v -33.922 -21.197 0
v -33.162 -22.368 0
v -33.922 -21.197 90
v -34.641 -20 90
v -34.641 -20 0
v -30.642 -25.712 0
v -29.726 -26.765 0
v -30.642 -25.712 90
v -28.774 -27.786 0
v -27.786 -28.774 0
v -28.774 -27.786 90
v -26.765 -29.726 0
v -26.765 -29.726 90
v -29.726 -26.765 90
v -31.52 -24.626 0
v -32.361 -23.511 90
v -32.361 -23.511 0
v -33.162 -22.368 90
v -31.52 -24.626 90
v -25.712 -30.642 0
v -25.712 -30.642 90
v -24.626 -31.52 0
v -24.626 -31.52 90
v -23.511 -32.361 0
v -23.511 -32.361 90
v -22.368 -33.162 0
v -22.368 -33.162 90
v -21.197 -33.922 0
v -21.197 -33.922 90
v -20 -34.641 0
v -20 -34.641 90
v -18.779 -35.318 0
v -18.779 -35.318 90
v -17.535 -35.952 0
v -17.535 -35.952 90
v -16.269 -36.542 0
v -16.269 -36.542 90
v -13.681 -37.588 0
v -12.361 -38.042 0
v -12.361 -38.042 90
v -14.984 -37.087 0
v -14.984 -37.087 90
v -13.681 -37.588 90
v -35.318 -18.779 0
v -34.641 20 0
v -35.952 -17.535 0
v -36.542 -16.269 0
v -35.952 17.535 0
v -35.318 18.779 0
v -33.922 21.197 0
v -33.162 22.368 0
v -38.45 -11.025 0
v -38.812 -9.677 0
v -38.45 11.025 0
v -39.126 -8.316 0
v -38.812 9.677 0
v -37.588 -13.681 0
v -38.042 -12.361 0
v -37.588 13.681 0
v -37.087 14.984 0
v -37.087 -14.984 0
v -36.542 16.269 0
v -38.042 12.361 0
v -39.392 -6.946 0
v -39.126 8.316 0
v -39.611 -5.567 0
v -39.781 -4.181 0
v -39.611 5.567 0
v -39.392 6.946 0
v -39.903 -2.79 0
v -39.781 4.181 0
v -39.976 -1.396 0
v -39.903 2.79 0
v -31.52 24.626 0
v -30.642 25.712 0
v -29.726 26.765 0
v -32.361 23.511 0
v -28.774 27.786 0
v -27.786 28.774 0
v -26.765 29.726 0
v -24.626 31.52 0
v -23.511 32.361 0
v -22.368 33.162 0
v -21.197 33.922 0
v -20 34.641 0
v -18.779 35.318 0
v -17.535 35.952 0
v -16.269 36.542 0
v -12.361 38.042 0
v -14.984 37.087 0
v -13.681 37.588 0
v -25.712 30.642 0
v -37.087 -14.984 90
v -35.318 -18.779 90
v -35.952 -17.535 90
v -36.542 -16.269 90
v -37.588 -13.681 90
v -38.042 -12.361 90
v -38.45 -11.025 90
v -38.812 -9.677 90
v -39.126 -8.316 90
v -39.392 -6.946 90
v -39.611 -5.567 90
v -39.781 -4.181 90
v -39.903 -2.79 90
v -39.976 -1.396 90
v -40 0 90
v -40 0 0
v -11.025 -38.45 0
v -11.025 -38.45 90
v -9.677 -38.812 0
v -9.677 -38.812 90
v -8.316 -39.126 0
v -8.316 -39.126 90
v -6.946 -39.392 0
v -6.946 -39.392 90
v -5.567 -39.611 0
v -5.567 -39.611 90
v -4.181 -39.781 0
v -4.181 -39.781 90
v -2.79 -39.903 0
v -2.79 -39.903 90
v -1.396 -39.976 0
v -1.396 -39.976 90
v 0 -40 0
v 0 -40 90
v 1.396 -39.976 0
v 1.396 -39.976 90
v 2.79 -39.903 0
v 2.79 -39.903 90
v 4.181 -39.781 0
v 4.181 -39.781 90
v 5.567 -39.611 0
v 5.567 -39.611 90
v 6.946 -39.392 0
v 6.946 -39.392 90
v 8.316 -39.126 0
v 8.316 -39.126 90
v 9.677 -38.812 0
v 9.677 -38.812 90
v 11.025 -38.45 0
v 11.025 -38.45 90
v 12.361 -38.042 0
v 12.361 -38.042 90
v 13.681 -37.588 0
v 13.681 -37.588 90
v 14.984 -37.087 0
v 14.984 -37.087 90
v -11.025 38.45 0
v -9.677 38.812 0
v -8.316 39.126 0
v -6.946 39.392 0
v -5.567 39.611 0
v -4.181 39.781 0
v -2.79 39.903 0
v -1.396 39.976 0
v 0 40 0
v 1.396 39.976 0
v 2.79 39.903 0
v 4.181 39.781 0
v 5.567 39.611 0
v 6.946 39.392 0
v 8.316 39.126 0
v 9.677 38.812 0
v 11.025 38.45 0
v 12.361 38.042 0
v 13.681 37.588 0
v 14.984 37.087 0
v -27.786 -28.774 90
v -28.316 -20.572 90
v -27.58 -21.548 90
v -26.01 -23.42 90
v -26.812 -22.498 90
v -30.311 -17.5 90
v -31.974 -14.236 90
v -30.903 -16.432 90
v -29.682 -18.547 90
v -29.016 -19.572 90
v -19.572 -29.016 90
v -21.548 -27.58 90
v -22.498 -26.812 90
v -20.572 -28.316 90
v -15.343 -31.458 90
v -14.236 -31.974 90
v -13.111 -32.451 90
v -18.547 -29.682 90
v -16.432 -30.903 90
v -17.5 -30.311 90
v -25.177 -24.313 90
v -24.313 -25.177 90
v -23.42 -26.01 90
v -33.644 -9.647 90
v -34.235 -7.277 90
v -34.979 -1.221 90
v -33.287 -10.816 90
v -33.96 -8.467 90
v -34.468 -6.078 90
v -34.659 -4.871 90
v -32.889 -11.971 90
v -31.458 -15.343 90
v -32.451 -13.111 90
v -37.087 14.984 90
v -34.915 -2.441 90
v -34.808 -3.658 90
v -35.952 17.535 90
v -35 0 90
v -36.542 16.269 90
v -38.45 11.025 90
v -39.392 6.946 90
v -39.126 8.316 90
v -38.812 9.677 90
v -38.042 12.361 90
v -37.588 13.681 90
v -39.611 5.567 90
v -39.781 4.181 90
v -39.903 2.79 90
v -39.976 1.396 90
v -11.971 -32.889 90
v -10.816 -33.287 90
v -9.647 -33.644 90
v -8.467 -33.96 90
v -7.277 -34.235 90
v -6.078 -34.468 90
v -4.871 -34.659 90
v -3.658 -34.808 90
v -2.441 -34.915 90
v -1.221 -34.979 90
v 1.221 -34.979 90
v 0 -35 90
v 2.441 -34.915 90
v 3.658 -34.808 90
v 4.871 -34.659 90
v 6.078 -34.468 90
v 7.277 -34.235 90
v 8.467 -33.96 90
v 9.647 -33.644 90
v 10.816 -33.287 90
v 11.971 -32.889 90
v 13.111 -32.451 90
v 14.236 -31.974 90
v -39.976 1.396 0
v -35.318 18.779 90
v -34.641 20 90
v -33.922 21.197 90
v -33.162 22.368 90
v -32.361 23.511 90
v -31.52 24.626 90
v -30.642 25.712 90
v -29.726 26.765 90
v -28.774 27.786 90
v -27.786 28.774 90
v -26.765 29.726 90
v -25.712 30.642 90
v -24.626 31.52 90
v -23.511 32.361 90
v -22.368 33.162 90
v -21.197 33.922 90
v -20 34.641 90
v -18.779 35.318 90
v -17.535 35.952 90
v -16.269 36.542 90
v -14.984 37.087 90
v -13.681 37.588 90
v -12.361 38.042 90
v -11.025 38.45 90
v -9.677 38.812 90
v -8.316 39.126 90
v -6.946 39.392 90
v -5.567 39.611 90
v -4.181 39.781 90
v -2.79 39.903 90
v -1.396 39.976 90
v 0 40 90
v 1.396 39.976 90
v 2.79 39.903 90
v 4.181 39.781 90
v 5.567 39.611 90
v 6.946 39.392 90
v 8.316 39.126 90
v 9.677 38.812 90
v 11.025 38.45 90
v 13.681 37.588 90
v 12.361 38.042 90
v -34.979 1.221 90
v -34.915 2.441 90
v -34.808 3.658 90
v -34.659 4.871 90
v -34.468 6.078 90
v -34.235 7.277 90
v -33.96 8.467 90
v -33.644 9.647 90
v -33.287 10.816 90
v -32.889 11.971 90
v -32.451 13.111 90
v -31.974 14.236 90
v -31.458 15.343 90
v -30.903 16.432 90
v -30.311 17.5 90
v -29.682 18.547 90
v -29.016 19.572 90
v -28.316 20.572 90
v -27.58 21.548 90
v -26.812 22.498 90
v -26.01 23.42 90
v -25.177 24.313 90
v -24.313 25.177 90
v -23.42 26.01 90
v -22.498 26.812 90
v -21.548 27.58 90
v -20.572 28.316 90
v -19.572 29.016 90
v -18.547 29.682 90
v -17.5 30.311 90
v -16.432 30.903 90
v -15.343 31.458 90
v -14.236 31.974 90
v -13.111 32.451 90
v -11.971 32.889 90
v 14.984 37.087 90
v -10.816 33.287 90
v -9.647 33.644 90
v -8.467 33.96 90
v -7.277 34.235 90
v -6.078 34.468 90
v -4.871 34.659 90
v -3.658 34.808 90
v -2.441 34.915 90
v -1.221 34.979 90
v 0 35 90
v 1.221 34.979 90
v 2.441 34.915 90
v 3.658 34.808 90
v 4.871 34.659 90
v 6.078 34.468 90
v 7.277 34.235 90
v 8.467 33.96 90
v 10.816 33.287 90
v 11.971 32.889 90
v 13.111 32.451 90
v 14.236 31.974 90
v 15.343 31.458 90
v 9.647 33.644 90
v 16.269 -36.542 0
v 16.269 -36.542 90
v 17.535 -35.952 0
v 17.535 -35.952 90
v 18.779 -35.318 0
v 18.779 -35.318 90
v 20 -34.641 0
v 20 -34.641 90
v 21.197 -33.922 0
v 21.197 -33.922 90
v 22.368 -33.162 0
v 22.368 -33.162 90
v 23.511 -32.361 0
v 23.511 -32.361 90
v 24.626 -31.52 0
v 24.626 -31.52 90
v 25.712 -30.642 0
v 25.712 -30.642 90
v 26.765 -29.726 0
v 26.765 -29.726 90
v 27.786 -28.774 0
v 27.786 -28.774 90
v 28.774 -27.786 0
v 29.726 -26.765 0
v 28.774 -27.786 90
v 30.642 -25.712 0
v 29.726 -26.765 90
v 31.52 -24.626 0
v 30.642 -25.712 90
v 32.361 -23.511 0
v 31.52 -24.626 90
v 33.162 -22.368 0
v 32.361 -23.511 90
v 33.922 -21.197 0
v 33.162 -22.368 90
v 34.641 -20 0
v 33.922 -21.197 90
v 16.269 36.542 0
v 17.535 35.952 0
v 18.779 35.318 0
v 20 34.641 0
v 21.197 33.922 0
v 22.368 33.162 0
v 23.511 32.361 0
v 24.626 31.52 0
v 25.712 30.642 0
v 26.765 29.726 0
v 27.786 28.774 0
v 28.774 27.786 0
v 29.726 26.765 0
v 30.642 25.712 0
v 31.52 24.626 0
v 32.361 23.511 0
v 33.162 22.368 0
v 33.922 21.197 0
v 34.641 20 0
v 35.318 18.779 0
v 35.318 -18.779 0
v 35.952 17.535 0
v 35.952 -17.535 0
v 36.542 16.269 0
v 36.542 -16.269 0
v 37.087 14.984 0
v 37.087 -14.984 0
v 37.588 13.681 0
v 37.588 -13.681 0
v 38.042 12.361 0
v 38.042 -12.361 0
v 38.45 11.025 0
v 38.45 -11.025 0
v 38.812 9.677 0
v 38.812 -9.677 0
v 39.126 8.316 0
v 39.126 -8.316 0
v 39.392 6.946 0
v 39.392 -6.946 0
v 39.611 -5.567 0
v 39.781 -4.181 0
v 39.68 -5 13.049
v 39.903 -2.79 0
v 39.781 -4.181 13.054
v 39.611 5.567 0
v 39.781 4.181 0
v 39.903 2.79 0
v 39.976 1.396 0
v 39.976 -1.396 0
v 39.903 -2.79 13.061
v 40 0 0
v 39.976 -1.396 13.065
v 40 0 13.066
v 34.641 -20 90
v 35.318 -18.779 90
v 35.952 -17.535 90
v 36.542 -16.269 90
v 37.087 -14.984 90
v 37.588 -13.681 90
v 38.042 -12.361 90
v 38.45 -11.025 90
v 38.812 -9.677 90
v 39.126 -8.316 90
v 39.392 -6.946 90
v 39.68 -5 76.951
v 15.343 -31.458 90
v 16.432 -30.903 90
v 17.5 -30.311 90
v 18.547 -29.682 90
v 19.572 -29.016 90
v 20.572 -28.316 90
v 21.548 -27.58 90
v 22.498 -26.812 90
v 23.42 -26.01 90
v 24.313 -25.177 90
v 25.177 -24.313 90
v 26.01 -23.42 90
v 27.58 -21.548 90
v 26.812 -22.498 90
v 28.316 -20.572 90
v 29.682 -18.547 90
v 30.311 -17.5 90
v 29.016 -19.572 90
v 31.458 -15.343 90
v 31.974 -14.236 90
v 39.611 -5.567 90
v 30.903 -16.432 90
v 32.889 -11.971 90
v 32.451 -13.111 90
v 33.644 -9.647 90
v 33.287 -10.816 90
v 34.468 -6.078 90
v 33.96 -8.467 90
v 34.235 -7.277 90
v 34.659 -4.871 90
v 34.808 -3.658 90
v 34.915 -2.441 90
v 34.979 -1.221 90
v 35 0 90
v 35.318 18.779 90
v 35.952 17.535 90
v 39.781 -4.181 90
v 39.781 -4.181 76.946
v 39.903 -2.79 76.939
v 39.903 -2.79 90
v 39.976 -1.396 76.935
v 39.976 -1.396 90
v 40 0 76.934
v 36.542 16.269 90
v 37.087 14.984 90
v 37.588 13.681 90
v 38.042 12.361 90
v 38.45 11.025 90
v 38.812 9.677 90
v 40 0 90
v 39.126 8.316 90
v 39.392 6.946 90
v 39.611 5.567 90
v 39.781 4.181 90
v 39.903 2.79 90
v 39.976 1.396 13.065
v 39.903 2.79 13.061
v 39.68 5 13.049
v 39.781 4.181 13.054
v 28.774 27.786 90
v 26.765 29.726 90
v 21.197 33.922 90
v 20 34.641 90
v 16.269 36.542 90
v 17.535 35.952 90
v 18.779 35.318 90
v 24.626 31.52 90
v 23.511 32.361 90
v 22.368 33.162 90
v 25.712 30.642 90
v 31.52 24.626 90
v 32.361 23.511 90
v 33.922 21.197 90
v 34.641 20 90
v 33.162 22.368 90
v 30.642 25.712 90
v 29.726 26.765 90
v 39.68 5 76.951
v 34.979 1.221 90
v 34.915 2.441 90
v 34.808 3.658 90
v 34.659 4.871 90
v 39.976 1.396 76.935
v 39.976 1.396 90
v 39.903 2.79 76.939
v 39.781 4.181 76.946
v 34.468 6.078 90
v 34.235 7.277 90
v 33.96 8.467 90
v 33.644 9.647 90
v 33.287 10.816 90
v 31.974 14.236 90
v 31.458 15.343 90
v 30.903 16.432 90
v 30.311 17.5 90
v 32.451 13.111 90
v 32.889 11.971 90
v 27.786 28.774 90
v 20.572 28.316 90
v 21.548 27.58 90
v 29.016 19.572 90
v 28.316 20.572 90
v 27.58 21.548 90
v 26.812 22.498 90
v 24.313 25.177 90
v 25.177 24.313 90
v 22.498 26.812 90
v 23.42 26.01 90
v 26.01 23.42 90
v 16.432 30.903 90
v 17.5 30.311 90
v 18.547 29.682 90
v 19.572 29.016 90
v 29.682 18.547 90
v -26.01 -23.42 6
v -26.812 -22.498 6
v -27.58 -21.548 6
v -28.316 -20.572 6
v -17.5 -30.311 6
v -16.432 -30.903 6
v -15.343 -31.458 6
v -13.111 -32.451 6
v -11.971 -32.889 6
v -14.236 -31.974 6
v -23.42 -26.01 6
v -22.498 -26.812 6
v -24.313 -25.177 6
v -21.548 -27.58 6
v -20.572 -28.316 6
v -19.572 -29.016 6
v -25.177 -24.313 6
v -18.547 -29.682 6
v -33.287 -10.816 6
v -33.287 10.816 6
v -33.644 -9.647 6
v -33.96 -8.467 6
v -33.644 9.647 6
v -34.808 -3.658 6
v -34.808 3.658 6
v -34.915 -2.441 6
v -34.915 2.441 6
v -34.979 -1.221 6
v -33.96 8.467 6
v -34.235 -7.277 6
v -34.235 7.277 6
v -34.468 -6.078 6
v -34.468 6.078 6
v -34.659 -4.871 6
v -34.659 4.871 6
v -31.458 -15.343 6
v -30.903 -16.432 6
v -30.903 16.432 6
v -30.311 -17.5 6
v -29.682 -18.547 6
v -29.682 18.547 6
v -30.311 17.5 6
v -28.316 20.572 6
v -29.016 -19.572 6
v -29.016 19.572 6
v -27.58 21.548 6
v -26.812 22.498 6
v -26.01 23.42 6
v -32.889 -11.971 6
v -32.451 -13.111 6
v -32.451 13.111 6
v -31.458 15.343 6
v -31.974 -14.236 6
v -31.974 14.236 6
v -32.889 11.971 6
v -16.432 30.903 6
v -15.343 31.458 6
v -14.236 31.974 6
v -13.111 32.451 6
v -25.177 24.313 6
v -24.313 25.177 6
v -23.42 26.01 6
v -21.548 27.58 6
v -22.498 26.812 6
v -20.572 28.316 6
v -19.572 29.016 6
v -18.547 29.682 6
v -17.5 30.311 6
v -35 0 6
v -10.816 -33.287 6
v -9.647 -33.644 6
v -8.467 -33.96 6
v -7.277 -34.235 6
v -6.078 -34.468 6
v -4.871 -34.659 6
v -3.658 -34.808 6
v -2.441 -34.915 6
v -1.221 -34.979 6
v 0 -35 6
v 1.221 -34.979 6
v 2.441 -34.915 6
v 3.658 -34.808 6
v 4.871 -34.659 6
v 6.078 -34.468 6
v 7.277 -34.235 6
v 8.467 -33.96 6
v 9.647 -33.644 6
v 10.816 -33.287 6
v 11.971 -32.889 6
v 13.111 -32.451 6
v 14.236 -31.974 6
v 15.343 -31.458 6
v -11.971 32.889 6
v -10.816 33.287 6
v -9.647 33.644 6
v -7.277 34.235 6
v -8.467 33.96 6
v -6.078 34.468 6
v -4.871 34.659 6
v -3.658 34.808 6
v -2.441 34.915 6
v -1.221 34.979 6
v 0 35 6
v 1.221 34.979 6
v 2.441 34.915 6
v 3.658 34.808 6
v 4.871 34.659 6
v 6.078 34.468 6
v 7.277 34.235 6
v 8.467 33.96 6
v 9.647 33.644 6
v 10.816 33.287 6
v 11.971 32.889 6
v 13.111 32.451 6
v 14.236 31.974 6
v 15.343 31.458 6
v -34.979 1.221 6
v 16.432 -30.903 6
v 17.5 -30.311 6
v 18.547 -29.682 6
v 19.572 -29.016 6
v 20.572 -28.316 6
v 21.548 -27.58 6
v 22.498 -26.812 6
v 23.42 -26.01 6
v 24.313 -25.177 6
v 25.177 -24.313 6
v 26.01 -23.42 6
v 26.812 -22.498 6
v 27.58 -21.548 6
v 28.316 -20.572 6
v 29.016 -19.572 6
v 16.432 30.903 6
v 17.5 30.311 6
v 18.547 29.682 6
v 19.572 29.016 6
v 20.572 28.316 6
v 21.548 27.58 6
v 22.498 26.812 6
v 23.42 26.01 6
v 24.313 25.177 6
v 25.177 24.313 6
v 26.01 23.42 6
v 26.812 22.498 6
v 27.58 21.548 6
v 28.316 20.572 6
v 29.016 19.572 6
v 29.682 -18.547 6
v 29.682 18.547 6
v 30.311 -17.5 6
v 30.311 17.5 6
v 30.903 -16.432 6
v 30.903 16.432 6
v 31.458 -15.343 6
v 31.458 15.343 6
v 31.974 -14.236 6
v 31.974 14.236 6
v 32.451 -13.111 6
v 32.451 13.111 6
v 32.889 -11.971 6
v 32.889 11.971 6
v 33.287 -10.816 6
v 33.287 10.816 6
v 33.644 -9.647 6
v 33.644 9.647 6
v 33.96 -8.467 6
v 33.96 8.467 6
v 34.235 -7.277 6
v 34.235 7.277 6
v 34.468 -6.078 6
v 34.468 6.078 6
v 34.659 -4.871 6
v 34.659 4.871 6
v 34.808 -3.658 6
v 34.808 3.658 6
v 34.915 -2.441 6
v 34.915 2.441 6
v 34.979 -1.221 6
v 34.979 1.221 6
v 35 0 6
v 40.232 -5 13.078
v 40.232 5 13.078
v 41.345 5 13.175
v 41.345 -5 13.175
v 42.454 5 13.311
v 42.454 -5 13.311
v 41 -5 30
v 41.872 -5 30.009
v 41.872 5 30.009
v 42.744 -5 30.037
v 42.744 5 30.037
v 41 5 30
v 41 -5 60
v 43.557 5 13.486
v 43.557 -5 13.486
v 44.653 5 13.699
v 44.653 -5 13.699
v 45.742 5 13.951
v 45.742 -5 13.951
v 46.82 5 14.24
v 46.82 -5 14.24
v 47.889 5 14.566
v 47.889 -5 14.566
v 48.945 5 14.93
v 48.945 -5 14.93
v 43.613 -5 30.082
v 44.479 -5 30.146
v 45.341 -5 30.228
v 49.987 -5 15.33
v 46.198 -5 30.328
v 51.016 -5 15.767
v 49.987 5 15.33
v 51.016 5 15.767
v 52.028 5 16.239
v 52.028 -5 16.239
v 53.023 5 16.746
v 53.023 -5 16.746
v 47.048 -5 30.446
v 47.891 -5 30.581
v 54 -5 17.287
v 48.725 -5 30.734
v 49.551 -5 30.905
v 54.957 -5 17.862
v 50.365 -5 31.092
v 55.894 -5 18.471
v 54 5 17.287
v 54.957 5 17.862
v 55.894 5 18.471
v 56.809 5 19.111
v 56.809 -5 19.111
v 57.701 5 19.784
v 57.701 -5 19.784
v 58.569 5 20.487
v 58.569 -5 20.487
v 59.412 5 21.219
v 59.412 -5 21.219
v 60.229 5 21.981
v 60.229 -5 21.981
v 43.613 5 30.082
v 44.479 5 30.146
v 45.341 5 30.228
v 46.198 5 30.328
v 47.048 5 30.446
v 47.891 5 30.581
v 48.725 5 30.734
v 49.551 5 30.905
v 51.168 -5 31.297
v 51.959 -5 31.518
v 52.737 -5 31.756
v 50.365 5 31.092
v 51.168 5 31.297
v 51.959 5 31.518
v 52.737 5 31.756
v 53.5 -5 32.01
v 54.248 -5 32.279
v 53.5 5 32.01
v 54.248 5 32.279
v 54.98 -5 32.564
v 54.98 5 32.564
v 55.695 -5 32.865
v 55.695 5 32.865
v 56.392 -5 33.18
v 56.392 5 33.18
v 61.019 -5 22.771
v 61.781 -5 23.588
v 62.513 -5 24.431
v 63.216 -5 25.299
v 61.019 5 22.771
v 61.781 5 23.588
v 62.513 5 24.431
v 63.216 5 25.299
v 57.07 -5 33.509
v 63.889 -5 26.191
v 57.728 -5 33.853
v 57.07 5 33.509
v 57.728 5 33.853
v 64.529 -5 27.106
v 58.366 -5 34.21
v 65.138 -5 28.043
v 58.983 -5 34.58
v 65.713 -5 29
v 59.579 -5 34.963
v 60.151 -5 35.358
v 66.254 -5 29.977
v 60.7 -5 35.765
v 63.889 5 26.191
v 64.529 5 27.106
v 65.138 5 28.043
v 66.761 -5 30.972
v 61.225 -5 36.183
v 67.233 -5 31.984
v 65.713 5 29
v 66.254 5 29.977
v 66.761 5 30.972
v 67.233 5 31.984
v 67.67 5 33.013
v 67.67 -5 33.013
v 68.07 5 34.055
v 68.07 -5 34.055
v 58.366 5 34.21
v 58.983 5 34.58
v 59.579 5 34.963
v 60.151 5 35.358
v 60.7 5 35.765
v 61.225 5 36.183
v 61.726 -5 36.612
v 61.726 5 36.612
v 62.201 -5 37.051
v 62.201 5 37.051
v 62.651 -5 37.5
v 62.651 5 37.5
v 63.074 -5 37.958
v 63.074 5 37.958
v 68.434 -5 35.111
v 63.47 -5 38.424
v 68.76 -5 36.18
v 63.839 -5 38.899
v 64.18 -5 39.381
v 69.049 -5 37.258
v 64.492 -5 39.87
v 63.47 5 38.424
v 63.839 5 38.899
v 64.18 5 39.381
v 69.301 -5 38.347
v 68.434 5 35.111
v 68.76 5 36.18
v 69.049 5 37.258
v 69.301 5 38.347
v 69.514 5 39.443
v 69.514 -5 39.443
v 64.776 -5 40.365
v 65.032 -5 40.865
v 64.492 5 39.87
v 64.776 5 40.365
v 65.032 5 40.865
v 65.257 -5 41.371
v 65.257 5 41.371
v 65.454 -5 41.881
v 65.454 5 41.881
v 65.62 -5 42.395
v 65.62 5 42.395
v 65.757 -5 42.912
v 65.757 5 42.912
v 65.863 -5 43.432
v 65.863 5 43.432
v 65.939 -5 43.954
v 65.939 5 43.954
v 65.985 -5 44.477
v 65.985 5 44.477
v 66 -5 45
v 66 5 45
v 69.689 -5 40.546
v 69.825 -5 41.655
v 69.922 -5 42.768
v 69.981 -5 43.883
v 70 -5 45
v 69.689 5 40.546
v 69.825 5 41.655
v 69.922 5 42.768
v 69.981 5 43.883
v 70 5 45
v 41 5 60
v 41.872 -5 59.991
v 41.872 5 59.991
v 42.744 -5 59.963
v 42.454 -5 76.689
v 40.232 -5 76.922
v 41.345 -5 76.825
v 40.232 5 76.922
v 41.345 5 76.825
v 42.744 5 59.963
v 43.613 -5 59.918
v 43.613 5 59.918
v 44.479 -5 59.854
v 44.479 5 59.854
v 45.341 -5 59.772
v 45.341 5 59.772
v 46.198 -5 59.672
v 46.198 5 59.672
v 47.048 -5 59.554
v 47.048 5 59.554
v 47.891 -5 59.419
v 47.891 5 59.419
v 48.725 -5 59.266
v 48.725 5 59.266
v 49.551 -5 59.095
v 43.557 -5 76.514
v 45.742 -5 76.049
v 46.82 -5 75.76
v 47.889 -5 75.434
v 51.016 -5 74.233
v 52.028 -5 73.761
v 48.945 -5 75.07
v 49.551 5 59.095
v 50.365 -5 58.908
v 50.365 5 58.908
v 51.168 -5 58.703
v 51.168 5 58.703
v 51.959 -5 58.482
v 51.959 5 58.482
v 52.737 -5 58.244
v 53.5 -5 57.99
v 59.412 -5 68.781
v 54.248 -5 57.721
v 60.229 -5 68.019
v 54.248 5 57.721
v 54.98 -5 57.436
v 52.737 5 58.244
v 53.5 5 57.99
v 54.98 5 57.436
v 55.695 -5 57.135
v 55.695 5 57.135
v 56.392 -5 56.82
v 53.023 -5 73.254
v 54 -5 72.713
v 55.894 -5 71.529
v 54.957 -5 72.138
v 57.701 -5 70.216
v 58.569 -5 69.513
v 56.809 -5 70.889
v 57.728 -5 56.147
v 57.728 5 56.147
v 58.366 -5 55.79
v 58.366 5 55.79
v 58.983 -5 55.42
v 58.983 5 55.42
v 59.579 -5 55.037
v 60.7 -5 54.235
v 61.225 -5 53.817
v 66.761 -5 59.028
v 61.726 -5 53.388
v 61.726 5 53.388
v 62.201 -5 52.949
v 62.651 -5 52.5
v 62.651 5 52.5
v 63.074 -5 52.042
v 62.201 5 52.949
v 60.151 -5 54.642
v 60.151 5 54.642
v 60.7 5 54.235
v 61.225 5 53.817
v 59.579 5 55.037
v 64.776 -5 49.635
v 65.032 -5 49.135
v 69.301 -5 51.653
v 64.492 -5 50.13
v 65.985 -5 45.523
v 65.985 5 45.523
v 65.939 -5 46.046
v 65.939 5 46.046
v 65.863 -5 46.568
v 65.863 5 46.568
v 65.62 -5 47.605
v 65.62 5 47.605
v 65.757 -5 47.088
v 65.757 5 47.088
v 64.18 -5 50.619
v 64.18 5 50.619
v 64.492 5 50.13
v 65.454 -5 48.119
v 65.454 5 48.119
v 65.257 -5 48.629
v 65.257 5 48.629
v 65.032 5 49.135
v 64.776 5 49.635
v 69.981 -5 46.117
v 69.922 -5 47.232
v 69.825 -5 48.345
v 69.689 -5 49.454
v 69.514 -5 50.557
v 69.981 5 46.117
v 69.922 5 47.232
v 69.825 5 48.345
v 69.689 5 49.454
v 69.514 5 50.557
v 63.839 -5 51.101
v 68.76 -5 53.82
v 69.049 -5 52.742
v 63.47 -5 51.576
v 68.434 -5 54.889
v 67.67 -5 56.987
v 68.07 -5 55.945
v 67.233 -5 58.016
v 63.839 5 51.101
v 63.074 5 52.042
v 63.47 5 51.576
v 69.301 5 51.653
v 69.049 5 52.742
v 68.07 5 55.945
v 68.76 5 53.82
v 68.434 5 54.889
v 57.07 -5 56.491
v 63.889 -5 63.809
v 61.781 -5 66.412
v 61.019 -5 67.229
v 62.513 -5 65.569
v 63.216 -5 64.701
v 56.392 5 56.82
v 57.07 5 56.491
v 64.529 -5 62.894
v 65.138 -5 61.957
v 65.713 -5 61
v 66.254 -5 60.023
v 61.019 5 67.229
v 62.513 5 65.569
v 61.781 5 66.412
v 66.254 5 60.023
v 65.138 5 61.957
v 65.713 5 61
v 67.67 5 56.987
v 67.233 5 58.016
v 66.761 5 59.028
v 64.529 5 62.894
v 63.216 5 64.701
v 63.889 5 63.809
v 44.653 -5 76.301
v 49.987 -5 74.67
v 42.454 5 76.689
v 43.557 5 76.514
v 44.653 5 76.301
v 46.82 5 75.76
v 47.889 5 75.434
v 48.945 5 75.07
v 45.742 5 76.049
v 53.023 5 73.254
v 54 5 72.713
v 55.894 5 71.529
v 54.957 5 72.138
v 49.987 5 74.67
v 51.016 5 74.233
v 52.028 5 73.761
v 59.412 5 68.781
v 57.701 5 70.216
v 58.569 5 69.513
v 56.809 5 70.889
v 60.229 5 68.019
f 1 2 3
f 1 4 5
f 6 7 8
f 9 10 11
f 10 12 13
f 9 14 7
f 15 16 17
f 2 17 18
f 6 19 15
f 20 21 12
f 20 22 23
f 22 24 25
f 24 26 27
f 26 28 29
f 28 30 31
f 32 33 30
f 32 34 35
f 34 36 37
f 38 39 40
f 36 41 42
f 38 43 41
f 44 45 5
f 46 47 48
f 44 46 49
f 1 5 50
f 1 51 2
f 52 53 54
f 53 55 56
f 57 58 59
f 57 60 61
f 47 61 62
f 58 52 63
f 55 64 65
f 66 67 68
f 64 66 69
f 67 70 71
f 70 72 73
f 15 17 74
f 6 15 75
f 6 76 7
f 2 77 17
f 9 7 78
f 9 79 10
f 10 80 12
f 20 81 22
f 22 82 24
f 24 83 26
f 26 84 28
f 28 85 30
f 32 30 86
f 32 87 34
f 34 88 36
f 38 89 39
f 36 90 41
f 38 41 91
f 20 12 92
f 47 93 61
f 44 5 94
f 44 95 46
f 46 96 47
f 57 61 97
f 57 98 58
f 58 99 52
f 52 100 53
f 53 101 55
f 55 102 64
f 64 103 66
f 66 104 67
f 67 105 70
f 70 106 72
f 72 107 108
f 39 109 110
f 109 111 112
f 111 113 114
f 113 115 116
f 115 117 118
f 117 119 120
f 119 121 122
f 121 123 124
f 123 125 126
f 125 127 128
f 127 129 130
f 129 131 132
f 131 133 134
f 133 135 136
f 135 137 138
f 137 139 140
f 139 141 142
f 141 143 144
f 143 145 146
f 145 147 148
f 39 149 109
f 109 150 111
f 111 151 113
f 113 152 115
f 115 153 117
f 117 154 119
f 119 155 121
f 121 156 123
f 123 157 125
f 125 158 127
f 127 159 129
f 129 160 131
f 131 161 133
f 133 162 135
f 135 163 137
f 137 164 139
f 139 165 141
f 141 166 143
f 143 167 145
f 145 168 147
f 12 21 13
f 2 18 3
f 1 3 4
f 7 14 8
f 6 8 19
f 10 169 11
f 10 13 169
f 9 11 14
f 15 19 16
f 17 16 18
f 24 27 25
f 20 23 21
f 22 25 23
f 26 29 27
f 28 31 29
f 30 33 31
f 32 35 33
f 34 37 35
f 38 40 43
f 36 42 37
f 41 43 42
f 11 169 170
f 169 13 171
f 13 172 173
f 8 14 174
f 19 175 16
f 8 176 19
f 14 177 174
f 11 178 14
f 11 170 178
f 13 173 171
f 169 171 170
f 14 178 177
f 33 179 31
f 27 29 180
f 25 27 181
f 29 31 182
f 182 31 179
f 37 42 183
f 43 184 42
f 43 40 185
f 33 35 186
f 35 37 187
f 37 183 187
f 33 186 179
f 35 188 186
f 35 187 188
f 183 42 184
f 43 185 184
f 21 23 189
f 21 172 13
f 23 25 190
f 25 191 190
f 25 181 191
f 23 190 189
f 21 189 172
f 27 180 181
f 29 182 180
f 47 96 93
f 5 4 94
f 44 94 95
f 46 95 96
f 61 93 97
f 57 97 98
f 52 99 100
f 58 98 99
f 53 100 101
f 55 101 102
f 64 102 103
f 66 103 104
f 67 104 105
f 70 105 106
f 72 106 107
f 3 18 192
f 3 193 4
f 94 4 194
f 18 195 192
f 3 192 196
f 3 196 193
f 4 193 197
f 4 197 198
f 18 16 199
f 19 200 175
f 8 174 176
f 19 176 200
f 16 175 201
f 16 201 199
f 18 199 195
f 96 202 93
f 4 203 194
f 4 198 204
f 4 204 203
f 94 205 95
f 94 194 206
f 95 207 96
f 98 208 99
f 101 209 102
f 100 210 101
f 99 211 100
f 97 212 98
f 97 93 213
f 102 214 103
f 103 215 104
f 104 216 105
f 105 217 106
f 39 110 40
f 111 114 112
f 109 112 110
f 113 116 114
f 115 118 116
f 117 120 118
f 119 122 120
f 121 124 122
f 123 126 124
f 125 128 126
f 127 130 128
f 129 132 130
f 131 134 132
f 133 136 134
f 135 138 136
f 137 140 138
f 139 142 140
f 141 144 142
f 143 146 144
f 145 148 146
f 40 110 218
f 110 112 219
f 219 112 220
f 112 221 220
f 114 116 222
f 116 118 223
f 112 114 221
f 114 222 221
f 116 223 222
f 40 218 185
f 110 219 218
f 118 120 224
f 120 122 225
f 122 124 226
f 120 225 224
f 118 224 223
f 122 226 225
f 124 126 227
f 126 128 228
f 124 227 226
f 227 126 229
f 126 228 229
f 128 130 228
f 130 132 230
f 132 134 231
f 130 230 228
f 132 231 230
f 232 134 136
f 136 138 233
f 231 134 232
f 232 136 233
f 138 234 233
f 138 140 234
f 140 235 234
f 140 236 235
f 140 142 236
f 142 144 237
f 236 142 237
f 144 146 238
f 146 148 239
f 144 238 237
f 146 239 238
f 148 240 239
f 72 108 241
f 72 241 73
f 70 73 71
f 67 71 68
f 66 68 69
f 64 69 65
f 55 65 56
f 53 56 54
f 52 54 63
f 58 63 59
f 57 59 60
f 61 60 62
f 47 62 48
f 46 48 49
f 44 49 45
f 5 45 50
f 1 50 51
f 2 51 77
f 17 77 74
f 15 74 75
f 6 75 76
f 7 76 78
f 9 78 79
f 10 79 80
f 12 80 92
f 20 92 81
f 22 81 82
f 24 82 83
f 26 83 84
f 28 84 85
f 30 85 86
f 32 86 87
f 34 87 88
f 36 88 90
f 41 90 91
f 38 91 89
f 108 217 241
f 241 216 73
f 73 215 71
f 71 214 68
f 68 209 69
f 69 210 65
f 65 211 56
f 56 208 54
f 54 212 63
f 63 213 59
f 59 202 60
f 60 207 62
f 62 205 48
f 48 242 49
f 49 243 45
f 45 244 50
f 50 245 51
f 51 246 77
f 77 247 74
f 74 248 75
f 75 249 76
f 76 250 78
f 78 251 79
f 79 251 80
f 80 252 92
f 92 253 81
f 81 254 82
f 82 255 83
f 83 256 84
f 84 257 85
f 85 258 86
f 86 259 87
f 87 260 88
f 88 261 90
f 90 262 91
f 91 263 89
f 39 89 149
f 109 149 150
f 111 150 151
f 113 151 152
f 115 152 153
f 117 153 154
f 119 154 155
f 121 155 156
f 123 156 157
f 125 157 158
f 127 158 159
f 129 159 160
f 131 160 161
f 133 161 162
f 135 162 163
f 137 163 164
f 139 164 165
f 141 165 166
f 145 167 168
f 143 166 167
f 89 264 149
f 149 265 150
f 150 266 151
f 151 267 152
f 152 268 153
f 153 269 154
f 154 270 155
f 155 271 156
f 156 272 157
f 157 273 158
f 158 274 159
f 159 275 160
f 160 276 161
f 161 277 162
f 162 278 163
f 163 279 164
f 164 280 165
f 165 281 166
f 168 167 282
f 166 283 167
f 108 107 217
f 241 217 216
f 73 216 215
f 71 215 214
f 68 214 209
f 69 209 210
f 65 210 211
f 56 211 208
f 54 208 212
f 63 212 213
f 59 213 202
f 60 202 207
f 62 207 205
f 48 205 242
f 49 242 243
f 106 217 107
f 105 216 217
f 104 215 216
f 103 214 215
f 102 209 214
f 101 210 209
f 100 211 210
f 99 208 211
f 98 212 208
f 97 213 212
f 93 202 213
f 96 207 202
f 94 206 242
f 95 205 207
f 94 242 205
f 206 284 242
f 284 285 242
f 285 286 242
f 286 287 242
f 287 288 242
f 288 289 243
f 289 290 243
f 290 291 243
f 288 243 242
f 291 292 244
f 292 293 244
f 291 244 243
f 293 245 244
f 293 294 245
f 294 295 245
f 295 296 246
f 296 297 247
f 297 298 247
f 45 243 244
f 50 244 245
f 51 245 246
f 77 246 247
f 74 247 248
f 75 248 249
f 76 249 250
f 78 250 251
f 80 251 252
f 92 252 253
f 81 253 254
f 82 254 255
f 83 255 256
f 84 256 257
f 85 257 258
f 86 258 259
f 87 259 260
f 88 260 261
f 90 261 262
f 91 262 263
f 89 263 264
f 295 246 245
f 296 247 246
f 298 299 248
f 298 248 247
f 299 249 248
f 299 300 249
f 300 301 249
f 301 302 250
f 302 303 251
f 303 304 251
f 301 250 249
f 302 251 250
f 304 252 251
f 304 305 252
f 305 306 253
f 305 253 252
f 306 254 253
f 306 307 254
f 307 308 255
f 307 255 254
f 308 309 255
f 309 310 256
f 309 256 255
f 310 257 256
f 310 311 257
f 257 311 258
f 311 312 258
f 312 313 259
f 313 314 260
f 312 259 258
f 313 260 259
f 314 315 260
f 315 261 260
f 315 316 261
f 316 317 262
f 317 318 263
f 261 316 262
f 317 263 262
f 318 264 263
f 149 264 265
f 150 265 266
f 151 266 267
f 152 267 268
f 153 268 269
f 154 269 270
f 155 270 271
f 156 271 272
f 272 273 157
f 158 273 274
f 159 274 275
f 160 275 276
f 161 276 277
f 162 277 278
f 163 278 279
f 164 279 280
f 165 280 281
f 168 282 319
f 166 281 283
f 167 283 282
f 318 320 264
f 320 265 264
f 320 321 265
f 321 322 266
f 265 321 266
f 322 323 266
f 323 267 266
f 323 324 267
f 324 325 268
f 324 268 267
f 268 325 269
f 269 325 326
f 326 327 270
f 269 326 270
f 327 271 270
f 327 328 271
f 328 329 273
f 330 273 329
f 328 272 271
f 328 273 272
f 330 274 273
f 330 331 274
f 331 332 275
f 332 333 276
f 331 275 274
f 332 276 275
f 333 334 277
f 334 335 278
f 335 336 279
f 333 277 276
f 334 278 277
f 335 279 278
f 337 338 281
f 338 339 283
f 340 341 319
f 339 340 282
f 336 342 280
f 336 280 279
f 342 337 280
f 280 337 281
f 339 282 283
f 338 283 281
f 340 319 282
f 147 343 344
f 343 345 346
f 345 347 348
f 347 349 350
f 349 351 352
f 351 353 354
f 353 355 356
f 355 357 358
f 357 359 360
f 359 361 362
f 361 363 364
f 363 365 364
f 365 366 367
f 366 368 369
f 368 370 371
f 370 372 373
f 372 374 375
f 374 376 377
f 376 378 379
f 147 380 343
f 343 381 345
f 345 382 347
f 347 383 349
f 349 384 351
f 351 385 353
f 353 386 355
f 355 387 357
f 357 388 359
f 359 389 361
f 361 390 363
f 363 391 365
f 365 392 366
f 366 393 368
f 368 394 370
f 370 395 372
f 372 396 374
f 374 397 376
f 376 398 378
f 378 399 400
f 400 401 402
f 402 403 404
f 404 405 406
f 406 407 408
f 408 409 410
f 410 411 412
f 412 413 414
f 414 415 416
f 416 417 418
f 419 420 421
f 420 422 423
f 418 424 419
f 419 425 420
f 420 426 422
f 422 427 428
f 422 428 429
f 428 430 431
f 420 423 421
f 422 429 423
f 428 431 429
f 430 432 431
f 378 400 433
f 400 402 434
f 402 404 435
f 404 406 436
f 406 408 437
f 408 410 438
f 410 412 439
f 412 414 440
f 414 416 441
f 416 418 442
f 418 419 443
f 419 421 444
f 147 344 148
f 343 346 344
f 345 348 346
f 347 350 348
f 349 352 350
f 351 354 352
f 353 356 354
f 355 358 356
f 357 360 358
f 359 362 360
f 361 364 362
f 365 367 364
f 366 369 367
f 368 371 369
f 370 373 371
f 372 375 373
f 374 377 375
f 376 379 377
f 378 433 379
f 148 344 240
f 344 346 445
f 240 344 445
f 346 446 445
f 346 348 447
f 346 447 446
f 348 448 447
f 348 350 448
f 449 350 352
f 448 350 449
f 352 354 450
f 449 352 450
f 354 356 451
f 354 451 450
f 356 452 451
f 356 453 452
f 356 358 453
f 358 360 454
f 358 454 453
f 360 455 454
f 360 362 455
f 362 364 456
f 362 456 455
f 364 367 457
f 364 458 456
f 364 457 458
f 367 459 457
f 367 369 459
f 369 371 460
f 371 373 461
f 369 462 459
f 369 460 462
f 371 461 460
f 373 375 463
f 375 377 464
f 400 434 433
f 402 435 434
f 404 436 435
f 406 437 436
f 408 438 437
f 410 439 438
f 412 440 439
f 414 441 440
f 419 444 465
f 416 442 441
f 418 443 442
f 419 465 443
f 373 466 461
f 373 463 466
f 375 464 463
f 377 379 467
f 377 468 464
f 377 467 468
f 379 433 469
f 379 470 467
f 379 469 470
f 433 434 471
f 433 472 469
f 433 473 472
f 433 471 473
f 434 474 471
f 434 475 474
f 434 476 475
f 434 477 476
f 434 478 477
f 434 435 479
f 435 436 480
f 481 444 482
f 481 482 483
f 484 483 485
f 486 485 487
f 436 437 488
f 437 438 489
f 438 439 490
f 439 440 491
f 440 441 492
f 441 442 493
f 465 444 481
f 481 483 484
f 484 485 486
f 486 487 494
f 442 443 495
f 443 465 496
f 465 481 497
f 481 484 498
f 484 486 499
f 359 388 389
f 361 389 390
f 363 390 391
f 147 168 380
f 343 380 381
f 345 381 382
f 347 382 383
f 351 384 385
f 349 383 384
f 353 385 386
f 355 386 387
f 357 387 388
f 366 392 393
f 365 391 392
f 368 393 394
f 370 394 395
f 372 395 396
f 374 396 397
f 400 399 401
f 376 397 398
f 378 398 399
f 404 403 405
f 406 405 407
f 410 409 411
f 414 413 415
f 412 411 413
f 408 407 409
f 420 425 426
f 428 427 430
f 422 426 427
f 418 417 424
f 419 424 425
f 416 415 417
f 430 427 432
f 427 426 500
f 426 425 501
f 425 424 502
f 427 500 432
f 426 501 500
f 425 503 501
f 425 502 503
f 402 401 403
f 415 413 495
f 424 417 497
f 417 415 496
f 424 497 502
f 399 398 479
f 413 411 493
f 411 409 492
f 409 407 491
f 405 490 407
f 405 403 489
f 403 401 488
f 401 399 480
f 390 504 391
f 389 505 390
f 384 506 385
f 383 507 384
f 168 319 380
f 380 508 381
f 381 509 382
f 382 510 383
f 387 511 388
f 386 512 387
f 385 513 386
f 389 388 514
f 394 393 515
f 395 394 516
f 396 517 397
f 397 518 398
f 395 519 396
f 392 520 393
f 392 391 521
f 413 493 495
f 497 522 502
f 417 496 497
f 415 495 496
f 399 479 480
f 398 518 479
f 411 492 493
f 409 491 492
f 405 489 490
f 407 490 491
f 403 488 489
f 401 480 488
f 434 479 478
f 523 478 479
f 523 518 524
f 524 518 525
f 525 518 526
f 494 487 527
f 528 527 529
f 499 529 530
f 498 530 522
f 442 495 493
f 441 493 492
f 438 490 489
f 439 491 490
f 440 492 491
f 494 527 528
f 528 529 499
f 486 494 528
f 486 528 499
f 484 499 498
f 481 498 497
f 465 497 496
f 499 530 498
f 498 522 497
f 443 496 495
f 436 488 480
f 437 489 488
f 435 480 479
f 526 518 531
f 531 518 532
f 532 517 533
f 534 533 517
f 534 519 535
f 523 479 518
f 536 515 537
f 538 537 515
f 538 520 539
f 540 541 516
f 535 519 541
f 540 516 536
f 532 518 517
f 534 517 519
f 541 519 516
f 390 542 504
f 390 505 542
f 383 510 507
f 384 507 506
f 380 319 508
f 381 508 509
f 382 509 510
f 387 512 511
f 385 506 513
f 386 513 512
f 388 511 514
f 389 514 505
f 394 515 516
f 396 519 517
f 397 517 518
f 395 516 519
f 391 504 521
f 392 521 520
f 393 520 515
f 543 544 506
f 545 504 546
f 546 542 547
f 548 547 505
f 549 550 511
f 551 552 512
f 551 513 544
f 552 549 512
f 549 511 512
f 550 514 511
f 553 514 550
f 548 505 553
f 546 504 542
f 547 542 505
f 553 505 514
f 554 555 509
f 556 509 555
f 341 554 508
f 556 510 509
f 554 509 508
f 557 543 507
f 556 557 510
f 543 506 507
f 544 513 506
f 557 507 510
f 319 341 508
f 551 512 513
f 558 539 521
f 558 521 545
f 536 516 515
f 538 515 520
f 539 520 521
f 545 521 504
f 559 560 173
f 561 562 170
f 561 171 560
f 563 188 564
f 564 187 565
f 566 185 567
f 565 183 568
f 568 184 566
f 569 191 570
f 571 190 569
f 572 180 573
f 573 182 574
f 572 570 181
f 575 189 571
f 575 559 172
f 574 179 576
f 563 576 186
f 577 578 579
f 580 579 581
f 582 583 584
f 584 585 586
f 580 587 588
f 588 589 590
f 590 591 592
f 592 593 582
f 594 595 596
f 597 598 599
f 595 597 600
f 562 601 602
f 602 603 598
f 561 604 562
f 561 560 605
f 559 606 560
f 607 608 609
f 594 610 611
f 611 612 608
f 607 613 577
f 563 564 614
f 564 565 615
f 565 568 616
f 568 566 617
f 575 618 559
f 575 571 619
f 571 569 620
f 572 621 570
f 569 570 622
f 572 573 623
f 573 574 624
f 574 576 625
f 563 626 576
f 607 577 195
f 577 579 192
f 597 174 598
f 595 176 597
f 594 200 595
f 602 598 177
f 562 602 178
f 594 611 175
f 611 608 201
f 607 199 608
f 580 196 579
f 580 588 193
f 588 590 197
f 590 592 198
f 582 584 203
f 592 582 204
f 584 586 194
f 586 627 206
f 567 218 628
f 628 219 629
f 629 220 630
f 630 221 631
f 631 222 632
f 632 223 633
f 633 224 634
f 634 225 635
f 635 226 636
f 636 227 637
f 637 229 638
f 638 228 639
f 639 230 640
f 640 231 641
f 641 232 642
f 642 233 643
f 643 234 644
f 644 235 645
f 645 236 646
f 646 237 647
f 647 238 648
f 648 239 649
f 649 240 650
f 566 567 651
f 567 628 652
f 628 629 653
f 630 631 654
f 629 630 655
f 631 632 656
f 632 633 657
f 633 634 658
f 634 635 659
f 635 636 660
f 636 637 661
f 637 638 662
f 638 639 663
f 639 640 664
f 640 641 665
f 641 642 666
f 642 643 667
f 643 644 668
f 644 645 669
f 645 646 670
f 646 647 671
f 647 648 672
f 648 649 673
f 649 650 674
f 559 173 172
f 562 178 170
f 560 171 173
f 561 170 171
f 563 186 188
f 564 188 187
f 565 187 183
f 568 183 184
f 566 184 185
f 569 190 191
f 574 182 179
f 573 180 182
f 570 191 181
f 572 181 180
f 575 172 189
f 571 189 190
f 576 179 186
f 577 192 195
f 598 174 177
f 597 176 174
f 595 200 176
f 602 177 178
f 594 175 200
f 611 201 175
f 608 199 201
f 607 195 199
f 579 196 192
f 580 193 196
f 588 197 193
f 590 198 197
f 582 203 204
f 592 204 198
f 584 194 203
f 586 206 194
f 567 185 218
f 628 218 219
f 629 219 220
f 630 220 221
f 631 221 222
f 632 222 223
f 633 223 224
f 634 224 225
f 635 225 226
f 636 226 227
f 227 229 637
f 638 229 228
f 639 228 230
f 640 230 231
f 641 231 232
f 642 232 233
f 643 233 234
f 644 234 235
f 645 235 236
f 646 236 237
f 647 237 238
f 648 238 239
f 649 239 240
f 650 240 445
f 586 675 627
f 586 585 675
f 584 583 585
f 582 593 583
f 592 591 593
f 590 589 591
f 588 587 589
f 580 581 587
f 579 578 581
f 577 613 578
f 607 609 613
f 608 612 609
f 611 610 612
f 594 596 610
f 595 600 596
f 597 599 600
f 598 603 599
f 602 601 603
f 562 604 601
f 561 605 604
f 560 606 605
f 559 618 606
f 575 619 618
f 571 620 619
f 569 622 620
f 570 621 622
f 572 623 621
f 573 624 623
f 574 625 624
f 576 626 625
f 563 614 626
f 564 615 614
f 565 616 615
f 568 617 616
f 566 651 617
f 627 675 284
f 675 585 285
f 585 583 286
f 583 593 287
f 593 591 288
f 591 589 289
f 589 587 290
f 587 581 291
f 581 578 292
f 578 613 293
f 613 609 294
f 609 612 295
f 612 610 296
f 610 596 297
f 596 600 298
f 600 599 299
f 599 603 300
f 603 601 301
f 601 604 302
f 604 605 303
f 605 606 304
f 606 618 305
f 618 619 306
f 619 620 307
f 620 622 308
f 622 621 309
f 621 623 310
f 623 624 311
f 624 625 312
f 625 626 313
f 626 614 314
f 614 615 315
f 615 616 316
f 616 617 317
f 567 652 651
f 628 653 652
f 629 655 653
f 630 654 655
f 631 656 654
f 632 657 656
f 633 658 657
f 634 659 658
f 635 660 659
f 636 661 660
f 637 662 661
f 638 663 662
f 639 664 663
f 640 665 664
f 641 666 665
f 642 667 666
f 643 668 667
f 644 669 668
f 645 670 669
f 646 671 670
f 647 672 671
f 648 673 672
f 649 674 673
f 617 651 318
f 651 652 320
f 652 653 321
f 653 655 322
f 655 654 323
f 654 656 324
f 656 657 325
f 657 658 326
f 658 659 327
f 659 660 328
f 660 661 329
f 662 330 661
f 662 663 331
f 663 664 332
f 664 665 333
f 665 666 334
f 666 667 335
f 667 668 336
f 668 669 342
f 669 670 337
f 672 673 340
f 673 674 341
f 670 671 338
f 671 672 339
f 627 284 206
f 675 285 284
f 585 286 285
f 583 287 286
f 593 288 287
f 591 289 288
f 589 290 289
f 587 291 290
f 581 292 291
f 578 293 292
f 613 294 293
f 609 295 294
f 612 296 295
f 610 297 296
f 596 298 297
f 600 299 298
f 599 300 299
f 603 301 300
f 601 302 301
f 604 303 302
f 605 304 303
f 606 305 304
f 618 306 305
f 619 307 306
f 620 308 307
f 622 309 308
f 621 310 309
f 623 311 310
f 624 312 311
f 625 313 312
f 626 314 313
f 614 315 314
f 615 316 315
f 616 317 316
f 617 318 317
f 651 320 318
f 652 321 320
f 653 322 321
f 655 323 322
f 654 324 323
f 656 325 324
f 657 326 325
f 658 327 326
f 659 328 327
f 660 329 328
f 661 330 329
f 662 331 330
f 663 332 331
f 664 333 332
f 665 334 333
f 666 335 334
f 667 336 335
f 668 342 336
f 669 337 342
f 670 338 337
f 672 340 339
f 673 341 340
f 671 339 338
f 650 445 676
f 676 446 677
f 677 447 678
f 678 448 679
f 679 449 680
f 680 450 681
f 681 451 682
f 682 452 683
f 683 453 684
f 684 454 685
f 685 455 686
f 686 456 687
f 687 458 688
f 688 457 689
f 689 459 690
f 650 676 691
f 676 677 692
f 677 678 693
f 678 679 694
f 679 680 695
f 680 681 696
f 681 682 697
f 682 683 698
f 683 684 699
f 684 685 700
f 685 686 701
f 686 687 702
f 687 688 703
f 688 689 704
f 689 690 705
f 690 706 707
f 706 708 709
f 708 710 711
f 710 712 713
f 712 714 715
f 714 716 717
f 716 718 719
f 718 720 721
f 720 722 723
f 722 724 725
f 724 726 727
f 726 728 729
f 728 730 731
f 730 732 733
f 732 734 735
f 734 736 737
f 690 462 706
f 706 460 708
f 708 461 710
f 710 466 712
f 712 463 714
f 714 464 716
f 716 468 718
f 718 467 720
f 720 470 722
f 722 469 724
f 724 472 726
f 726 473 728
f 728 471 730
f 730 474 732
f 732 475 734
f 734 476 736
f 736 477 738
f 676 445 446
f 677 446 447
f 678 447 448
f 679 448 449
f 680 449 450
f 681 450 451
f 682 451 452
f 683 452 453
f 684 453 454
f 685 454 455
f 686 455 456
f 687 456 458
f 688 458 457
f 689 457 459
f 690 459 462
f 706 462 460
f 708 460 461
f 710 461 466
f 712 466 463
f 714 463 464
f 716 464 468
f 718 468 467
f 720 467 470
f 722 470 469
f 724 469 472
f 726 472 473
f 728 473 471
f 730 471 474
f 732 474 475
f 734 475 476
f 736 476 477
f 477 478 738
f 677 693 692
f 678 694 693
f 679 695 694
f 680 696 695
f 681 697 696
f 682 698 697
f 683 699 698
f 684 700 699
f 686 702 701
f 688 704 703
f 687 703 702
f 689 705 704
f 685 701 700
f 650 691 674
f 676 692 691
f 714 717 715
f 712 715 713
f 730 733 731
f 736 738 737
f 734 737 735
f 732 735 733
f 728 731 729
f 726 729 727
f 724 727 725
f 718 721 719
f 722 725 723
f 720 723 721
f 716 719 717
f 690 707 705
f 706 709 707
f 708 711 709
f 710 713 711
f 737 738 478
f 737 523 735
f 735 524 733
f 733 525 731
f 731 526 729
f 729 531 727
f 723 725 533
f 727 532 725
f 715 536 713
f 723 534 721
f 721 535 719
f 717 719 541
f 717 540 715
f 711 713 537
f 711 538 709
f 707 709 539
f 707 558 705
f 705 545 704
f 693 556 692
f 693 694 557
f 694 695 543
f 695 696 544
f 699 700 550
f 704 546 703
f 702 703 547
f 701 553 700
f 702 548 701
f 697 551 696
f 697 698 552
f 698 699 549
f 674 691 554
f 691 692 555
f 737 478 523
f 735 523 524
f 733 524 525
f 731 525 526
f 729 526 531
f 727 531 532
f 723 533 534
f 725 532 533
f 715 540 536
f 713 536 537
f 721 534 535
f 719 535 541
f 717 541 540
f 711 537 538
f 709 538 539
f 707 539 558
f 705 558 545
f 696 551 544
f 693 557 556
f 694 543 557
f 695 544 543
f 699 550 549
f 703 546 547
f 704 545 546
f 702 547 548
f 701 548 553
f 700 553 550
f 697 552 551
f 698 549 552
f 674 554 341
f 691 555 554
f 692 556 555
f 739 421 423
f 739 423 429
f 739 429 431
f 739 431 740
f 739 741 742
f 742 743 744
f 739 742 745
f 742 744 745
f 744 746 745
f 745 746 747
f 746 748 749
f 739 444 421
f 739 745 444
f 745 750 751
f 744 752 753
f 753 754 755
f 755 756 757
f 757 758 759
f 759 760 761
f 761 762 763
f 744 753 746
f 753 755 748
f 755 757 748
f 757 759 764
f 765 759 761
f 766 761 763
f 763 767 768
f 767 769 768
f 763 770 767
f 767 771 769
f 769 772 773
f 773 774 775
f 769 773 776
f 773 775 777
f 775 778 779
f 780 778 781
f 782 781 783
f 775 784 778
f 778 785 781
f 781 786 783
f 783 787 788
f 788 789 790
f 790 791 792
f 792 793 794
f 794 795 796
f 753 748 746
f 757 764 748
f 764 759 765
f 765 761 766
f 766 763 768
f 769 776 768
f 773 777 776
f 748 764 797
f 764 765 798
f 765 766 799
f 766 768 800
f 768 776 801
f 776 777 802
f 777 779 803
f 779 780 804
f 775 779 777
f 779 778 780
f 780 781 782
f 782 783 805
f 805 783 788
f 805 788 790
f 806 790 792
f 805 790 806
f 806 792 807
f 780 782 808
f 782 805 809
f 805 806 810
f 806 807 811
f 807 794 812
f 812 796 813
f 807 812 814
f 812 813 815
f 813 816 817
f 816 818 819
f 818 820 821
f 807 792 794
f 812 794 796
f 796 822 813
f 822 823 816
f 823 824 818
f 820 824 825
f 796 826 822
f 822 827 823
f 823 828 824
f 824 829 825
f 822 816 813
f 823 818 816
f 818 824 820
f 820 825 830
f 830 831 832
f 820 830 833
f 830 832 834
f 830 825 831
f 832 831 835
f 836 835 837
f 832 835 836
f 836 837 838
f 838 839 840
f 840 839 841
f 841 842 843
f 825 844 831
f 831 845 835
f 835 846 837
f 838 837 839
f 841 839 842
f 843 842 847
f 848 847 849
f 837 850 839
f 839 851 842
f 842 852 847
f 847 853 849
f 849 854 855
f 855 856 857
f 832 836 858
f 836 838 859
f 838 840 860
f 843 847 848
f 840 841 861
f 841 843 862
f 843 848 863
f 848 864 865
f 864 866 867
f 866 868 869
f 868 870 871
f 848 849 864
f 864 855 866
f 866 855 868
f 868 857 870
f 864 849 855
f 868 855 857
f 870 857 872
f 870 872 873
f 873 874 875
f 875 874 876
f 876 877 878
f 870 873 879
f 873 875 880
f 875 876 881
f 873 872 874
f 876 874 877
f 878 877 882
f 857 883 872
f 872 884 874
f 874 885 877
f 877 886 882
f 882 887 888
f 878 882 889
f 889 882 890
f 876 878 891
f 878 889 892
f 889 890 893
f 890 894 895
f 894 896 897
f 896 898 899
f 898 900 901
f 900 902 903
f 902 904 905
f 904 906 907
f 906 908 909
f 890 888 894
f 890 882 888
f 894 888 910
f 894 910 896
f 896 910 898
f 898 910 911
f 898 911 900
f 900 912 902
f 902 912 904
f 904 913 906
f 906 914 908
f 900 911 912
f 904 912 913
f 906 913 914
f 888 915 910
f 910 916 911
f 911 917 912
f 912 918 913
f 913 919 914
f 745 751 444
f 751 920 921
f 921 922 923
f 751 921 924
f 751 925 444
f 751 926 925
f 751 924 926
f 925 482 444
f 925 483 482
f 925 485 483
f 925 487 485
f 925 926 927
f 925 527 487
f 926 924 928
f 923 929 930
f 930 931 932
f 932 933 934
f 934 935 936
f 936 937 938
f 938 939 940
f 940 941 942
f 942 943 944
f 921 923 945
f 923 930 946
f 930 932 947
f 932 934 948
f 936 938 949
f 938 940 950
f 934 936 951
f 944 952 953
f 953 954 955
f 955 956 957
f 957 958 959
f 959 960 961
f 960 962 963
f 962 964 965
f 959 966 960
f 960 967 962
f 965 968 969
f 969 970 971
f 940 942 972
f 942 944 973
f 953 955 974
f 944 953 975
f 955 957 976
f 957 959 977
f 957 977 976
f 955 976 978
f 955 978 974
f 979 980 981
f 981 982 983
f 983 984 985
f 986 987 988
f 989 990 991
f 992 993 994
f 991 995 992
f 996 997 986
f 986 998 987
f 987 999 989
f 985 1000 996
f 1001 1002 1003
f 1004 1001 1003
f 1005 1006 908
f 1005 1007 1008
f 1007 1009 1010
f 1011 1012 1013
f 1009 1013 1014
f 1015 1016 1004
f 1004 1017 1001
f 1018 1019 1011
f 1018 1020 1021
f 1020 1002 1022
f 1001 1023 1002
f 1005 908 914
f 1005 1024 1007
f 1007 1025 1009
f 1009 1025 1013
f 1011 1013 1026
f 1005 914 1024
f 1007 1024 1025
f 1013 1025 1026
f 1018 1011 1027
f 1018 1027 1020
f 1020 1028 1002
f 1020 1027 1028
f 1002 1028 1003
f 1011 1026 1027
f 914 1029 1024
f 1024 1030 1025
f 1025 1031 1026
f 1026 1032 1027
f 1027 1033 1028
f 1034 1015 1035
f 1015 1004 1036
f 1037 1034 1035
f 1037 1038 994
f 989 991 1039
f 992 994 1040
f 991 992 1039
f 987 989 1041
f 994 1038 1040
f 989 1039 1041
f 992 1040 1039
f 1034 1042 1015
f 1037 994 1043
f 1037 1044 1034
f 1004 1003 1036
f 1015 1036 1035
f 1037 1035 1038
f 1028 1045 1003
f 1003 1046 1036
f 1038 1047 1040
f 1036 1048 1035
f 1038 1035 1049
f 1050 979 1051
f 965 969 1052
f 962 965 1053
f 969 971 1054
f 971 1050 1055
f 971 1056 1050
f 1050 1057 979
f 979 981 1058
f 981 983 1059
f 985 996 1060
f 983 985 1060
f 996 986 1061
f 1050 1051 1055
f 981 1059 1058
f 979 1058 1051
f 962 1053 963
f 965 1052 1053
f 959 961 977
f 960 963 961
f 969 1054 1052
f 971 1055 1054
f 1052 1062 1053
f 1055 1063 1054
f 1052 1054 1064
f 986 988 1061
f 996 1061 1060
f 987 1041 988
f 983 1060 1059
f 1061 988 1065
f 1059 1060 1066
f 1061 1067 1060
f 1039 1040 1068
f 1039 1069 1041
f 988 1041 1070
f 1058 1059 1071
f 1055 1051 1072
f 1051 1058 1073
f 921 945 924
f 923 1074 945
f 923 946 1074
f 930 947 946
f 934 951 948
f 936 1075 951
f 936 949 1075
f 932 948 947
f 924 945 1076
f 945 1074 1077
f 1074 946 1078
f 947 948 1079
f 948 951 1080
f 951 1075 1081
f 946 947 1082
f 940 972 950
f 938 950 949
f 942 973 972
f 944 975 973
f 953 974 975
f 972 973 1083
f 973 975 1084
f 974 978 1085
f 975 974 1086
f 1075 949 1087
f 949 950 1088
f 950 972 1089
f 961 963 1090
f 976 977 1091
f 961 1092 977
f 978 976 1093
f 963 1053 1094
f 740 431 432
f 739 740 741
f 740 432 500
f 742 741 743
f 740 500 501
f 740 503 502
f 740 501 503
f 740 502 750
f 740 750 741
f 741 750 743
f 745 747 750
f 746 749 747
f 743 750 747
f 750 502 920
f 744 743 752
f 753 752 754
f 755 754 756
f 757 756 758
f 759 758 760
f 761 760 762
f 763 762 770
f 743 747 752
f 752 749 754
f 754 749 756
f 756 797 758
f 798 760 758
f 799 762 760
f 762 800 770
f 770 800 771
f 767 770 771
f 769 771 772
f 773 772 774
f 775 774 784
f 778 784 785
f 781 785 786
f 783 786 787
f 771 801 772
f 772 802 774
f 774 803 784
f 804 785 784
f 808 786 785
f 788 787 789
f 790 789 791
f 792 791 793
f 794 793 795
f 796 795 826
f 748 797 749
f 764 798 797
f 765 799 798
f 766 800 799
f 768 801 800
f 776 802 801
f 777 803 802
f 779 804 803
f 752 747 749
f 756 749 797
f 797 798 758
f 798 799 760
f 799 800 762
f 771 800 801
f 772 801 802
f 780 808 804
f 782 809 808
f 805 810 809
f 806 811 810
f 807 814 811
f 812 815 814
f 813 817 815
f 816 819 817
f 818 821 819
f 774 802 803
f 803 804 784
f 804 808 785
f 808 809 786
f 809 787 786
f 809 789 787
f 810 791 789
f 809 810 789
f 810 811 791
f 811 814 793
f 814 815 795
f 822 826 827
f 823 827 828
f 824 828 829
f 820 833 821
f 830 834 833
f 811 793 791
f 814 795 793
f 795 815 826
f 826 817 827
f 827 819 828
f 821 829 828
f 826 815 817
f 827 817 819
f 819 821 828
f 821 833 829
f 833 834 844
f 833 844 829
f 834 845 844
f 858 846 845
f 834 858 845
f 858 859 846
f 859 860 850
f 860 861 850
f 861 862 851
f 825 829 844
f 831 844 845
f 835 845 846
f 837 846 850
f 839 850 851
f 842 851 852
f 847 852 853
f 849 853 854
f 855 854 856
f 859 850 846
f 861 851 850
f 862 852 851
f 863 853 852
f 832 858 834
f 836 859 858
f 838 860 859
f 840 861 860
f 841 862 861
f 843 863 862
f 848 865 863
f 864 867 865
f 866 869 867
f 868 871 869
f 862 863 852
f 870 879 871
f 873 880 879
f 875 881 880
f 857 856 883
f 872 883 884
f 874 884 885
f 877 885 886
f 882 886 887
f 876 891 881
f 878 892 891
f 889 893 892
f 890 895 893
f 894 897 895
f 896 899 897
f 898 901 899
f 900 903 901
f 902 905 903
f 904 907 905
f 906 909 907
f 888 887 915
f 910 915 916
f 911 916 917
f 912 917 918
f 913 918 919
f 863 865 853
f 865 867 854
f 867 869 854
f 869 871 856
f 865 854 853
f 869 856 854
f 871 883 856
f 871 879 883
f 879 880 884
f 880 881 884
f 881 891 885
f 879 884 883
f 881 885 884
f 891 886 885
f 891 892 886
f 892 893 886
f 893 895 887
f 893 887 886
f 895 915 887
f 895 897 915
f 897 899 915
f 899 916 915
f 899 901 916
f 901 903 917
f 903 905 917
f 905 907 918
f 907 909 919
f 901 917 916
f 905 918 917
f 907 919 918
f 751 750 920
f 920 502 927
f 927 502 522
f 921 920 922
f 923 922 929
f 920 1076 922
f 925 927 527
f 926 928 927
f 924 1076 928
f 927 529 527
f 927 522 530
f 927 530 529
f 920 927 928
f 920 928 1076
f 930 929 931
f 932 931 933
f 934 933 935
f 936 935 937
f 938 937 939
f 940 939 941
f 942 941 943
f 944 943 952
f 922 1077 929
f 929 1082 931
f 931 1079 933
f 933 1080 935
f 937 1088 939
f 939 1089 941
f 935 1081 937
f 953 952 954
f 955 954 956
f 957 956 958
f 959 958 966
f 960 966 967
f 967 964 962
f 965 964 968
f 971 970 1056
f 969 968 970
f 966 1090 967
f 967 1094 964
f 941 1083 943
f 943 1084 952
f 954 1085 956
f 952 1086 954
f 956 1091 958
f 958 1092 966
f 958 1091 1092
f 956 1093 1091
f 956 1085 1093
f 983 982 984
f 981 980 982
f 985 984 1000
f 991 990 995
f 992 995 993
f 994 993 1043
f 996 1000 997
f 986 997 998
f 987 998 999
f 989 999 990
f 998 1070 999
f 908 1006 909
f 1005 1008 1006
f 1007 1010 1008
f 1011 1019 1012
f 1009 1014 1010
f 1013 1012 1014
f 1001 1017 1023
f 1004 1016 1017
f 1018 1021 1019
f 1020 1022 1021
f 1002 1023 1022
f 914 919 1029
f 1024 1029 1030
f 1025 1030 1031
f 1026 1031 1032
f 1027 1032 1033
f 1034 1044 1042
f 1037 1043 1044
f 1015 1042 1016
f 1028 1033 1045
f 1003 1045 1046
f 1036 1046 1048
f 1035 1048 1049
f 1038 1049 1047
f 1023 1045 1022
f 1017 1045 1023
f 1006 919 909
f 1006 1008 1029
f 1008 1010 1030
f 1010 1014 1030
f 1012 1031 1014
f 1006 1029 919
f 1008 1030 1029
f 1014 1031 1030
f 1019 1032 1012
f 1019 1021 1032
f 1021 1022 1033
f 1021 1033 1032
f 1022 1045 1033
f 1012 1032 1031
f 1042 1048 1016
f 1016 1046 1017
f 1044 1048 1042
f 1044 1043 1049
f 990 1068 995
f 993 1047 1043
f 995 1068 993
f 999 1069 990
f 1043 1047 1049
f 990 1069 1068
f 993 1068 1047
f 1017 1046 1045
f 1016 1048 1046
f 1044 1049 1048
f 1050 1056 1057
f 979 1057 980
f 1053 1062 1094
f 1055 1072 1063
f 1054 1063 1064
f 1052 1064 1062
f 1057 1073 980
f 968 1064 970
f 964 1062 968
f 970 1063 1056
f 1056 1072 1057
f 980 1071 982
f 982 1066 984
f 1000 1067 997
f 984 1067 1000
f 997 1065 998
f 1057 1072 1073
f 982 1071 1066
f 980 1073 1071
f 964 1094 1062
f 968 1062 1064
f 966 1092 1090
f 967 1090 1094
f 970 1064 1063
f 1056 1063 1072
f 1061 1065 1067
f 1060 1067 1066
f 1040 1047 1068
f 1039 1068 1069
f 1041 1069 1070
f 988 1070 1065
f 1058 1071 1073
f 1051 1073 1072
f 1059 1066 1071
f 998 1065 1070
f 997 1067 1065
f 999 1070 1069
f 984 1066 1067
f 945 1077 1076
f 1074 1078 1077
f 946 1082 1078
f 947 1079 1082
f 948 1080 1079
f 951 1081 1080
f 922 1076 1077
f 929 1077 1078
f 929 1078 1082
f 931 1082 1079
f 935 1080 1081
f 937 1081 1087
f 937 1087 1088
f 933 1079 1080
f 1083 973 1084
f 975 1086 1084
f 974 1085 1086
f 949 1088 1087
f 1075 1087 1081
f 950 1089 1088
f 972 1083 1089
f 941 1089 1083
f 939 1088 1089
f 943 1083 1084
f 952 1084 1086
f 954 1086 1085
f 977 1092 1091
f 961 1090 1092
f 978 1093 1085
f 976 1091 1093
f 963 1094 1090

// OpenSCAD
$fn = 180;

// 本体寸法（mm）
outer_diameter = 80;
inner_diameter = 70;
mug_height = 90;
bottom_thickness = 6;

// 取手寸法（mm）
handle_opening_height = 30;
handle_opening_width = 25;
handle_depth = 10;
handle_tip_thickness = 4;

outer_radius = outer_diameter / 2;
inner_radius = inner_diameter / 2;

// 本体外周へ 2 mm 食い込ませ、面接触ではなく体積で接続する。
handle_base_x = outer_radius - 2;
handle_opening_x = outer_radius + 1;
handle_center_z = mug_height / 2;

opening_offset = handle_opening_x - handle_base_x;
handle_outer_radius =
    opening_offset + handle_opening_width + handle_tip_thickness;

epsilon = 0.1;

// 直線辺が x=0、半円が +X 側にある D 字。
module half_disk(radius) {
    intersection() {
        circle(r = radius);
        translate([0, -radius])
            square([radius, 2 * radius]);
    }
}

module mug_body() {
    difference() {
        cylinder(h = mug_height, r = outer_radius);

        translate([0, 0, bottom_thickness])
            cylinder(
                h = mug_height - bottom_thickness + epsilon,
                r = inner_radius
            );
    }
}

module handle_profile() {
    difference() {
        // 外側は真円の半円、本体側は直線。
        half_disk(handle_outer_radius);

        // 内側の開口：X 方向 25 mm、高さ方向 30 mm。
        translate([opening_offset, 0])
            scale([
                handle_opening_width,
                handle_opening_height / 2
            ])
                half_disk(1);
    }
}

module handle() {
    // 2D の Y を高さ Z に写し、厚みを Y 方向へ付ける。
    // 取手全体を本体の +X 側だけに配置する。
    translate([handle_base_x, 0, handle_center_z])
        rotate([90, 0, 0])
            linear_extrude(
                height = handle_depth,
                center = true,
                convexity = 10
            )
                handle_profile();
}

render(convexity = 10)
    union() {
        mug_body();
        handle();
    }
